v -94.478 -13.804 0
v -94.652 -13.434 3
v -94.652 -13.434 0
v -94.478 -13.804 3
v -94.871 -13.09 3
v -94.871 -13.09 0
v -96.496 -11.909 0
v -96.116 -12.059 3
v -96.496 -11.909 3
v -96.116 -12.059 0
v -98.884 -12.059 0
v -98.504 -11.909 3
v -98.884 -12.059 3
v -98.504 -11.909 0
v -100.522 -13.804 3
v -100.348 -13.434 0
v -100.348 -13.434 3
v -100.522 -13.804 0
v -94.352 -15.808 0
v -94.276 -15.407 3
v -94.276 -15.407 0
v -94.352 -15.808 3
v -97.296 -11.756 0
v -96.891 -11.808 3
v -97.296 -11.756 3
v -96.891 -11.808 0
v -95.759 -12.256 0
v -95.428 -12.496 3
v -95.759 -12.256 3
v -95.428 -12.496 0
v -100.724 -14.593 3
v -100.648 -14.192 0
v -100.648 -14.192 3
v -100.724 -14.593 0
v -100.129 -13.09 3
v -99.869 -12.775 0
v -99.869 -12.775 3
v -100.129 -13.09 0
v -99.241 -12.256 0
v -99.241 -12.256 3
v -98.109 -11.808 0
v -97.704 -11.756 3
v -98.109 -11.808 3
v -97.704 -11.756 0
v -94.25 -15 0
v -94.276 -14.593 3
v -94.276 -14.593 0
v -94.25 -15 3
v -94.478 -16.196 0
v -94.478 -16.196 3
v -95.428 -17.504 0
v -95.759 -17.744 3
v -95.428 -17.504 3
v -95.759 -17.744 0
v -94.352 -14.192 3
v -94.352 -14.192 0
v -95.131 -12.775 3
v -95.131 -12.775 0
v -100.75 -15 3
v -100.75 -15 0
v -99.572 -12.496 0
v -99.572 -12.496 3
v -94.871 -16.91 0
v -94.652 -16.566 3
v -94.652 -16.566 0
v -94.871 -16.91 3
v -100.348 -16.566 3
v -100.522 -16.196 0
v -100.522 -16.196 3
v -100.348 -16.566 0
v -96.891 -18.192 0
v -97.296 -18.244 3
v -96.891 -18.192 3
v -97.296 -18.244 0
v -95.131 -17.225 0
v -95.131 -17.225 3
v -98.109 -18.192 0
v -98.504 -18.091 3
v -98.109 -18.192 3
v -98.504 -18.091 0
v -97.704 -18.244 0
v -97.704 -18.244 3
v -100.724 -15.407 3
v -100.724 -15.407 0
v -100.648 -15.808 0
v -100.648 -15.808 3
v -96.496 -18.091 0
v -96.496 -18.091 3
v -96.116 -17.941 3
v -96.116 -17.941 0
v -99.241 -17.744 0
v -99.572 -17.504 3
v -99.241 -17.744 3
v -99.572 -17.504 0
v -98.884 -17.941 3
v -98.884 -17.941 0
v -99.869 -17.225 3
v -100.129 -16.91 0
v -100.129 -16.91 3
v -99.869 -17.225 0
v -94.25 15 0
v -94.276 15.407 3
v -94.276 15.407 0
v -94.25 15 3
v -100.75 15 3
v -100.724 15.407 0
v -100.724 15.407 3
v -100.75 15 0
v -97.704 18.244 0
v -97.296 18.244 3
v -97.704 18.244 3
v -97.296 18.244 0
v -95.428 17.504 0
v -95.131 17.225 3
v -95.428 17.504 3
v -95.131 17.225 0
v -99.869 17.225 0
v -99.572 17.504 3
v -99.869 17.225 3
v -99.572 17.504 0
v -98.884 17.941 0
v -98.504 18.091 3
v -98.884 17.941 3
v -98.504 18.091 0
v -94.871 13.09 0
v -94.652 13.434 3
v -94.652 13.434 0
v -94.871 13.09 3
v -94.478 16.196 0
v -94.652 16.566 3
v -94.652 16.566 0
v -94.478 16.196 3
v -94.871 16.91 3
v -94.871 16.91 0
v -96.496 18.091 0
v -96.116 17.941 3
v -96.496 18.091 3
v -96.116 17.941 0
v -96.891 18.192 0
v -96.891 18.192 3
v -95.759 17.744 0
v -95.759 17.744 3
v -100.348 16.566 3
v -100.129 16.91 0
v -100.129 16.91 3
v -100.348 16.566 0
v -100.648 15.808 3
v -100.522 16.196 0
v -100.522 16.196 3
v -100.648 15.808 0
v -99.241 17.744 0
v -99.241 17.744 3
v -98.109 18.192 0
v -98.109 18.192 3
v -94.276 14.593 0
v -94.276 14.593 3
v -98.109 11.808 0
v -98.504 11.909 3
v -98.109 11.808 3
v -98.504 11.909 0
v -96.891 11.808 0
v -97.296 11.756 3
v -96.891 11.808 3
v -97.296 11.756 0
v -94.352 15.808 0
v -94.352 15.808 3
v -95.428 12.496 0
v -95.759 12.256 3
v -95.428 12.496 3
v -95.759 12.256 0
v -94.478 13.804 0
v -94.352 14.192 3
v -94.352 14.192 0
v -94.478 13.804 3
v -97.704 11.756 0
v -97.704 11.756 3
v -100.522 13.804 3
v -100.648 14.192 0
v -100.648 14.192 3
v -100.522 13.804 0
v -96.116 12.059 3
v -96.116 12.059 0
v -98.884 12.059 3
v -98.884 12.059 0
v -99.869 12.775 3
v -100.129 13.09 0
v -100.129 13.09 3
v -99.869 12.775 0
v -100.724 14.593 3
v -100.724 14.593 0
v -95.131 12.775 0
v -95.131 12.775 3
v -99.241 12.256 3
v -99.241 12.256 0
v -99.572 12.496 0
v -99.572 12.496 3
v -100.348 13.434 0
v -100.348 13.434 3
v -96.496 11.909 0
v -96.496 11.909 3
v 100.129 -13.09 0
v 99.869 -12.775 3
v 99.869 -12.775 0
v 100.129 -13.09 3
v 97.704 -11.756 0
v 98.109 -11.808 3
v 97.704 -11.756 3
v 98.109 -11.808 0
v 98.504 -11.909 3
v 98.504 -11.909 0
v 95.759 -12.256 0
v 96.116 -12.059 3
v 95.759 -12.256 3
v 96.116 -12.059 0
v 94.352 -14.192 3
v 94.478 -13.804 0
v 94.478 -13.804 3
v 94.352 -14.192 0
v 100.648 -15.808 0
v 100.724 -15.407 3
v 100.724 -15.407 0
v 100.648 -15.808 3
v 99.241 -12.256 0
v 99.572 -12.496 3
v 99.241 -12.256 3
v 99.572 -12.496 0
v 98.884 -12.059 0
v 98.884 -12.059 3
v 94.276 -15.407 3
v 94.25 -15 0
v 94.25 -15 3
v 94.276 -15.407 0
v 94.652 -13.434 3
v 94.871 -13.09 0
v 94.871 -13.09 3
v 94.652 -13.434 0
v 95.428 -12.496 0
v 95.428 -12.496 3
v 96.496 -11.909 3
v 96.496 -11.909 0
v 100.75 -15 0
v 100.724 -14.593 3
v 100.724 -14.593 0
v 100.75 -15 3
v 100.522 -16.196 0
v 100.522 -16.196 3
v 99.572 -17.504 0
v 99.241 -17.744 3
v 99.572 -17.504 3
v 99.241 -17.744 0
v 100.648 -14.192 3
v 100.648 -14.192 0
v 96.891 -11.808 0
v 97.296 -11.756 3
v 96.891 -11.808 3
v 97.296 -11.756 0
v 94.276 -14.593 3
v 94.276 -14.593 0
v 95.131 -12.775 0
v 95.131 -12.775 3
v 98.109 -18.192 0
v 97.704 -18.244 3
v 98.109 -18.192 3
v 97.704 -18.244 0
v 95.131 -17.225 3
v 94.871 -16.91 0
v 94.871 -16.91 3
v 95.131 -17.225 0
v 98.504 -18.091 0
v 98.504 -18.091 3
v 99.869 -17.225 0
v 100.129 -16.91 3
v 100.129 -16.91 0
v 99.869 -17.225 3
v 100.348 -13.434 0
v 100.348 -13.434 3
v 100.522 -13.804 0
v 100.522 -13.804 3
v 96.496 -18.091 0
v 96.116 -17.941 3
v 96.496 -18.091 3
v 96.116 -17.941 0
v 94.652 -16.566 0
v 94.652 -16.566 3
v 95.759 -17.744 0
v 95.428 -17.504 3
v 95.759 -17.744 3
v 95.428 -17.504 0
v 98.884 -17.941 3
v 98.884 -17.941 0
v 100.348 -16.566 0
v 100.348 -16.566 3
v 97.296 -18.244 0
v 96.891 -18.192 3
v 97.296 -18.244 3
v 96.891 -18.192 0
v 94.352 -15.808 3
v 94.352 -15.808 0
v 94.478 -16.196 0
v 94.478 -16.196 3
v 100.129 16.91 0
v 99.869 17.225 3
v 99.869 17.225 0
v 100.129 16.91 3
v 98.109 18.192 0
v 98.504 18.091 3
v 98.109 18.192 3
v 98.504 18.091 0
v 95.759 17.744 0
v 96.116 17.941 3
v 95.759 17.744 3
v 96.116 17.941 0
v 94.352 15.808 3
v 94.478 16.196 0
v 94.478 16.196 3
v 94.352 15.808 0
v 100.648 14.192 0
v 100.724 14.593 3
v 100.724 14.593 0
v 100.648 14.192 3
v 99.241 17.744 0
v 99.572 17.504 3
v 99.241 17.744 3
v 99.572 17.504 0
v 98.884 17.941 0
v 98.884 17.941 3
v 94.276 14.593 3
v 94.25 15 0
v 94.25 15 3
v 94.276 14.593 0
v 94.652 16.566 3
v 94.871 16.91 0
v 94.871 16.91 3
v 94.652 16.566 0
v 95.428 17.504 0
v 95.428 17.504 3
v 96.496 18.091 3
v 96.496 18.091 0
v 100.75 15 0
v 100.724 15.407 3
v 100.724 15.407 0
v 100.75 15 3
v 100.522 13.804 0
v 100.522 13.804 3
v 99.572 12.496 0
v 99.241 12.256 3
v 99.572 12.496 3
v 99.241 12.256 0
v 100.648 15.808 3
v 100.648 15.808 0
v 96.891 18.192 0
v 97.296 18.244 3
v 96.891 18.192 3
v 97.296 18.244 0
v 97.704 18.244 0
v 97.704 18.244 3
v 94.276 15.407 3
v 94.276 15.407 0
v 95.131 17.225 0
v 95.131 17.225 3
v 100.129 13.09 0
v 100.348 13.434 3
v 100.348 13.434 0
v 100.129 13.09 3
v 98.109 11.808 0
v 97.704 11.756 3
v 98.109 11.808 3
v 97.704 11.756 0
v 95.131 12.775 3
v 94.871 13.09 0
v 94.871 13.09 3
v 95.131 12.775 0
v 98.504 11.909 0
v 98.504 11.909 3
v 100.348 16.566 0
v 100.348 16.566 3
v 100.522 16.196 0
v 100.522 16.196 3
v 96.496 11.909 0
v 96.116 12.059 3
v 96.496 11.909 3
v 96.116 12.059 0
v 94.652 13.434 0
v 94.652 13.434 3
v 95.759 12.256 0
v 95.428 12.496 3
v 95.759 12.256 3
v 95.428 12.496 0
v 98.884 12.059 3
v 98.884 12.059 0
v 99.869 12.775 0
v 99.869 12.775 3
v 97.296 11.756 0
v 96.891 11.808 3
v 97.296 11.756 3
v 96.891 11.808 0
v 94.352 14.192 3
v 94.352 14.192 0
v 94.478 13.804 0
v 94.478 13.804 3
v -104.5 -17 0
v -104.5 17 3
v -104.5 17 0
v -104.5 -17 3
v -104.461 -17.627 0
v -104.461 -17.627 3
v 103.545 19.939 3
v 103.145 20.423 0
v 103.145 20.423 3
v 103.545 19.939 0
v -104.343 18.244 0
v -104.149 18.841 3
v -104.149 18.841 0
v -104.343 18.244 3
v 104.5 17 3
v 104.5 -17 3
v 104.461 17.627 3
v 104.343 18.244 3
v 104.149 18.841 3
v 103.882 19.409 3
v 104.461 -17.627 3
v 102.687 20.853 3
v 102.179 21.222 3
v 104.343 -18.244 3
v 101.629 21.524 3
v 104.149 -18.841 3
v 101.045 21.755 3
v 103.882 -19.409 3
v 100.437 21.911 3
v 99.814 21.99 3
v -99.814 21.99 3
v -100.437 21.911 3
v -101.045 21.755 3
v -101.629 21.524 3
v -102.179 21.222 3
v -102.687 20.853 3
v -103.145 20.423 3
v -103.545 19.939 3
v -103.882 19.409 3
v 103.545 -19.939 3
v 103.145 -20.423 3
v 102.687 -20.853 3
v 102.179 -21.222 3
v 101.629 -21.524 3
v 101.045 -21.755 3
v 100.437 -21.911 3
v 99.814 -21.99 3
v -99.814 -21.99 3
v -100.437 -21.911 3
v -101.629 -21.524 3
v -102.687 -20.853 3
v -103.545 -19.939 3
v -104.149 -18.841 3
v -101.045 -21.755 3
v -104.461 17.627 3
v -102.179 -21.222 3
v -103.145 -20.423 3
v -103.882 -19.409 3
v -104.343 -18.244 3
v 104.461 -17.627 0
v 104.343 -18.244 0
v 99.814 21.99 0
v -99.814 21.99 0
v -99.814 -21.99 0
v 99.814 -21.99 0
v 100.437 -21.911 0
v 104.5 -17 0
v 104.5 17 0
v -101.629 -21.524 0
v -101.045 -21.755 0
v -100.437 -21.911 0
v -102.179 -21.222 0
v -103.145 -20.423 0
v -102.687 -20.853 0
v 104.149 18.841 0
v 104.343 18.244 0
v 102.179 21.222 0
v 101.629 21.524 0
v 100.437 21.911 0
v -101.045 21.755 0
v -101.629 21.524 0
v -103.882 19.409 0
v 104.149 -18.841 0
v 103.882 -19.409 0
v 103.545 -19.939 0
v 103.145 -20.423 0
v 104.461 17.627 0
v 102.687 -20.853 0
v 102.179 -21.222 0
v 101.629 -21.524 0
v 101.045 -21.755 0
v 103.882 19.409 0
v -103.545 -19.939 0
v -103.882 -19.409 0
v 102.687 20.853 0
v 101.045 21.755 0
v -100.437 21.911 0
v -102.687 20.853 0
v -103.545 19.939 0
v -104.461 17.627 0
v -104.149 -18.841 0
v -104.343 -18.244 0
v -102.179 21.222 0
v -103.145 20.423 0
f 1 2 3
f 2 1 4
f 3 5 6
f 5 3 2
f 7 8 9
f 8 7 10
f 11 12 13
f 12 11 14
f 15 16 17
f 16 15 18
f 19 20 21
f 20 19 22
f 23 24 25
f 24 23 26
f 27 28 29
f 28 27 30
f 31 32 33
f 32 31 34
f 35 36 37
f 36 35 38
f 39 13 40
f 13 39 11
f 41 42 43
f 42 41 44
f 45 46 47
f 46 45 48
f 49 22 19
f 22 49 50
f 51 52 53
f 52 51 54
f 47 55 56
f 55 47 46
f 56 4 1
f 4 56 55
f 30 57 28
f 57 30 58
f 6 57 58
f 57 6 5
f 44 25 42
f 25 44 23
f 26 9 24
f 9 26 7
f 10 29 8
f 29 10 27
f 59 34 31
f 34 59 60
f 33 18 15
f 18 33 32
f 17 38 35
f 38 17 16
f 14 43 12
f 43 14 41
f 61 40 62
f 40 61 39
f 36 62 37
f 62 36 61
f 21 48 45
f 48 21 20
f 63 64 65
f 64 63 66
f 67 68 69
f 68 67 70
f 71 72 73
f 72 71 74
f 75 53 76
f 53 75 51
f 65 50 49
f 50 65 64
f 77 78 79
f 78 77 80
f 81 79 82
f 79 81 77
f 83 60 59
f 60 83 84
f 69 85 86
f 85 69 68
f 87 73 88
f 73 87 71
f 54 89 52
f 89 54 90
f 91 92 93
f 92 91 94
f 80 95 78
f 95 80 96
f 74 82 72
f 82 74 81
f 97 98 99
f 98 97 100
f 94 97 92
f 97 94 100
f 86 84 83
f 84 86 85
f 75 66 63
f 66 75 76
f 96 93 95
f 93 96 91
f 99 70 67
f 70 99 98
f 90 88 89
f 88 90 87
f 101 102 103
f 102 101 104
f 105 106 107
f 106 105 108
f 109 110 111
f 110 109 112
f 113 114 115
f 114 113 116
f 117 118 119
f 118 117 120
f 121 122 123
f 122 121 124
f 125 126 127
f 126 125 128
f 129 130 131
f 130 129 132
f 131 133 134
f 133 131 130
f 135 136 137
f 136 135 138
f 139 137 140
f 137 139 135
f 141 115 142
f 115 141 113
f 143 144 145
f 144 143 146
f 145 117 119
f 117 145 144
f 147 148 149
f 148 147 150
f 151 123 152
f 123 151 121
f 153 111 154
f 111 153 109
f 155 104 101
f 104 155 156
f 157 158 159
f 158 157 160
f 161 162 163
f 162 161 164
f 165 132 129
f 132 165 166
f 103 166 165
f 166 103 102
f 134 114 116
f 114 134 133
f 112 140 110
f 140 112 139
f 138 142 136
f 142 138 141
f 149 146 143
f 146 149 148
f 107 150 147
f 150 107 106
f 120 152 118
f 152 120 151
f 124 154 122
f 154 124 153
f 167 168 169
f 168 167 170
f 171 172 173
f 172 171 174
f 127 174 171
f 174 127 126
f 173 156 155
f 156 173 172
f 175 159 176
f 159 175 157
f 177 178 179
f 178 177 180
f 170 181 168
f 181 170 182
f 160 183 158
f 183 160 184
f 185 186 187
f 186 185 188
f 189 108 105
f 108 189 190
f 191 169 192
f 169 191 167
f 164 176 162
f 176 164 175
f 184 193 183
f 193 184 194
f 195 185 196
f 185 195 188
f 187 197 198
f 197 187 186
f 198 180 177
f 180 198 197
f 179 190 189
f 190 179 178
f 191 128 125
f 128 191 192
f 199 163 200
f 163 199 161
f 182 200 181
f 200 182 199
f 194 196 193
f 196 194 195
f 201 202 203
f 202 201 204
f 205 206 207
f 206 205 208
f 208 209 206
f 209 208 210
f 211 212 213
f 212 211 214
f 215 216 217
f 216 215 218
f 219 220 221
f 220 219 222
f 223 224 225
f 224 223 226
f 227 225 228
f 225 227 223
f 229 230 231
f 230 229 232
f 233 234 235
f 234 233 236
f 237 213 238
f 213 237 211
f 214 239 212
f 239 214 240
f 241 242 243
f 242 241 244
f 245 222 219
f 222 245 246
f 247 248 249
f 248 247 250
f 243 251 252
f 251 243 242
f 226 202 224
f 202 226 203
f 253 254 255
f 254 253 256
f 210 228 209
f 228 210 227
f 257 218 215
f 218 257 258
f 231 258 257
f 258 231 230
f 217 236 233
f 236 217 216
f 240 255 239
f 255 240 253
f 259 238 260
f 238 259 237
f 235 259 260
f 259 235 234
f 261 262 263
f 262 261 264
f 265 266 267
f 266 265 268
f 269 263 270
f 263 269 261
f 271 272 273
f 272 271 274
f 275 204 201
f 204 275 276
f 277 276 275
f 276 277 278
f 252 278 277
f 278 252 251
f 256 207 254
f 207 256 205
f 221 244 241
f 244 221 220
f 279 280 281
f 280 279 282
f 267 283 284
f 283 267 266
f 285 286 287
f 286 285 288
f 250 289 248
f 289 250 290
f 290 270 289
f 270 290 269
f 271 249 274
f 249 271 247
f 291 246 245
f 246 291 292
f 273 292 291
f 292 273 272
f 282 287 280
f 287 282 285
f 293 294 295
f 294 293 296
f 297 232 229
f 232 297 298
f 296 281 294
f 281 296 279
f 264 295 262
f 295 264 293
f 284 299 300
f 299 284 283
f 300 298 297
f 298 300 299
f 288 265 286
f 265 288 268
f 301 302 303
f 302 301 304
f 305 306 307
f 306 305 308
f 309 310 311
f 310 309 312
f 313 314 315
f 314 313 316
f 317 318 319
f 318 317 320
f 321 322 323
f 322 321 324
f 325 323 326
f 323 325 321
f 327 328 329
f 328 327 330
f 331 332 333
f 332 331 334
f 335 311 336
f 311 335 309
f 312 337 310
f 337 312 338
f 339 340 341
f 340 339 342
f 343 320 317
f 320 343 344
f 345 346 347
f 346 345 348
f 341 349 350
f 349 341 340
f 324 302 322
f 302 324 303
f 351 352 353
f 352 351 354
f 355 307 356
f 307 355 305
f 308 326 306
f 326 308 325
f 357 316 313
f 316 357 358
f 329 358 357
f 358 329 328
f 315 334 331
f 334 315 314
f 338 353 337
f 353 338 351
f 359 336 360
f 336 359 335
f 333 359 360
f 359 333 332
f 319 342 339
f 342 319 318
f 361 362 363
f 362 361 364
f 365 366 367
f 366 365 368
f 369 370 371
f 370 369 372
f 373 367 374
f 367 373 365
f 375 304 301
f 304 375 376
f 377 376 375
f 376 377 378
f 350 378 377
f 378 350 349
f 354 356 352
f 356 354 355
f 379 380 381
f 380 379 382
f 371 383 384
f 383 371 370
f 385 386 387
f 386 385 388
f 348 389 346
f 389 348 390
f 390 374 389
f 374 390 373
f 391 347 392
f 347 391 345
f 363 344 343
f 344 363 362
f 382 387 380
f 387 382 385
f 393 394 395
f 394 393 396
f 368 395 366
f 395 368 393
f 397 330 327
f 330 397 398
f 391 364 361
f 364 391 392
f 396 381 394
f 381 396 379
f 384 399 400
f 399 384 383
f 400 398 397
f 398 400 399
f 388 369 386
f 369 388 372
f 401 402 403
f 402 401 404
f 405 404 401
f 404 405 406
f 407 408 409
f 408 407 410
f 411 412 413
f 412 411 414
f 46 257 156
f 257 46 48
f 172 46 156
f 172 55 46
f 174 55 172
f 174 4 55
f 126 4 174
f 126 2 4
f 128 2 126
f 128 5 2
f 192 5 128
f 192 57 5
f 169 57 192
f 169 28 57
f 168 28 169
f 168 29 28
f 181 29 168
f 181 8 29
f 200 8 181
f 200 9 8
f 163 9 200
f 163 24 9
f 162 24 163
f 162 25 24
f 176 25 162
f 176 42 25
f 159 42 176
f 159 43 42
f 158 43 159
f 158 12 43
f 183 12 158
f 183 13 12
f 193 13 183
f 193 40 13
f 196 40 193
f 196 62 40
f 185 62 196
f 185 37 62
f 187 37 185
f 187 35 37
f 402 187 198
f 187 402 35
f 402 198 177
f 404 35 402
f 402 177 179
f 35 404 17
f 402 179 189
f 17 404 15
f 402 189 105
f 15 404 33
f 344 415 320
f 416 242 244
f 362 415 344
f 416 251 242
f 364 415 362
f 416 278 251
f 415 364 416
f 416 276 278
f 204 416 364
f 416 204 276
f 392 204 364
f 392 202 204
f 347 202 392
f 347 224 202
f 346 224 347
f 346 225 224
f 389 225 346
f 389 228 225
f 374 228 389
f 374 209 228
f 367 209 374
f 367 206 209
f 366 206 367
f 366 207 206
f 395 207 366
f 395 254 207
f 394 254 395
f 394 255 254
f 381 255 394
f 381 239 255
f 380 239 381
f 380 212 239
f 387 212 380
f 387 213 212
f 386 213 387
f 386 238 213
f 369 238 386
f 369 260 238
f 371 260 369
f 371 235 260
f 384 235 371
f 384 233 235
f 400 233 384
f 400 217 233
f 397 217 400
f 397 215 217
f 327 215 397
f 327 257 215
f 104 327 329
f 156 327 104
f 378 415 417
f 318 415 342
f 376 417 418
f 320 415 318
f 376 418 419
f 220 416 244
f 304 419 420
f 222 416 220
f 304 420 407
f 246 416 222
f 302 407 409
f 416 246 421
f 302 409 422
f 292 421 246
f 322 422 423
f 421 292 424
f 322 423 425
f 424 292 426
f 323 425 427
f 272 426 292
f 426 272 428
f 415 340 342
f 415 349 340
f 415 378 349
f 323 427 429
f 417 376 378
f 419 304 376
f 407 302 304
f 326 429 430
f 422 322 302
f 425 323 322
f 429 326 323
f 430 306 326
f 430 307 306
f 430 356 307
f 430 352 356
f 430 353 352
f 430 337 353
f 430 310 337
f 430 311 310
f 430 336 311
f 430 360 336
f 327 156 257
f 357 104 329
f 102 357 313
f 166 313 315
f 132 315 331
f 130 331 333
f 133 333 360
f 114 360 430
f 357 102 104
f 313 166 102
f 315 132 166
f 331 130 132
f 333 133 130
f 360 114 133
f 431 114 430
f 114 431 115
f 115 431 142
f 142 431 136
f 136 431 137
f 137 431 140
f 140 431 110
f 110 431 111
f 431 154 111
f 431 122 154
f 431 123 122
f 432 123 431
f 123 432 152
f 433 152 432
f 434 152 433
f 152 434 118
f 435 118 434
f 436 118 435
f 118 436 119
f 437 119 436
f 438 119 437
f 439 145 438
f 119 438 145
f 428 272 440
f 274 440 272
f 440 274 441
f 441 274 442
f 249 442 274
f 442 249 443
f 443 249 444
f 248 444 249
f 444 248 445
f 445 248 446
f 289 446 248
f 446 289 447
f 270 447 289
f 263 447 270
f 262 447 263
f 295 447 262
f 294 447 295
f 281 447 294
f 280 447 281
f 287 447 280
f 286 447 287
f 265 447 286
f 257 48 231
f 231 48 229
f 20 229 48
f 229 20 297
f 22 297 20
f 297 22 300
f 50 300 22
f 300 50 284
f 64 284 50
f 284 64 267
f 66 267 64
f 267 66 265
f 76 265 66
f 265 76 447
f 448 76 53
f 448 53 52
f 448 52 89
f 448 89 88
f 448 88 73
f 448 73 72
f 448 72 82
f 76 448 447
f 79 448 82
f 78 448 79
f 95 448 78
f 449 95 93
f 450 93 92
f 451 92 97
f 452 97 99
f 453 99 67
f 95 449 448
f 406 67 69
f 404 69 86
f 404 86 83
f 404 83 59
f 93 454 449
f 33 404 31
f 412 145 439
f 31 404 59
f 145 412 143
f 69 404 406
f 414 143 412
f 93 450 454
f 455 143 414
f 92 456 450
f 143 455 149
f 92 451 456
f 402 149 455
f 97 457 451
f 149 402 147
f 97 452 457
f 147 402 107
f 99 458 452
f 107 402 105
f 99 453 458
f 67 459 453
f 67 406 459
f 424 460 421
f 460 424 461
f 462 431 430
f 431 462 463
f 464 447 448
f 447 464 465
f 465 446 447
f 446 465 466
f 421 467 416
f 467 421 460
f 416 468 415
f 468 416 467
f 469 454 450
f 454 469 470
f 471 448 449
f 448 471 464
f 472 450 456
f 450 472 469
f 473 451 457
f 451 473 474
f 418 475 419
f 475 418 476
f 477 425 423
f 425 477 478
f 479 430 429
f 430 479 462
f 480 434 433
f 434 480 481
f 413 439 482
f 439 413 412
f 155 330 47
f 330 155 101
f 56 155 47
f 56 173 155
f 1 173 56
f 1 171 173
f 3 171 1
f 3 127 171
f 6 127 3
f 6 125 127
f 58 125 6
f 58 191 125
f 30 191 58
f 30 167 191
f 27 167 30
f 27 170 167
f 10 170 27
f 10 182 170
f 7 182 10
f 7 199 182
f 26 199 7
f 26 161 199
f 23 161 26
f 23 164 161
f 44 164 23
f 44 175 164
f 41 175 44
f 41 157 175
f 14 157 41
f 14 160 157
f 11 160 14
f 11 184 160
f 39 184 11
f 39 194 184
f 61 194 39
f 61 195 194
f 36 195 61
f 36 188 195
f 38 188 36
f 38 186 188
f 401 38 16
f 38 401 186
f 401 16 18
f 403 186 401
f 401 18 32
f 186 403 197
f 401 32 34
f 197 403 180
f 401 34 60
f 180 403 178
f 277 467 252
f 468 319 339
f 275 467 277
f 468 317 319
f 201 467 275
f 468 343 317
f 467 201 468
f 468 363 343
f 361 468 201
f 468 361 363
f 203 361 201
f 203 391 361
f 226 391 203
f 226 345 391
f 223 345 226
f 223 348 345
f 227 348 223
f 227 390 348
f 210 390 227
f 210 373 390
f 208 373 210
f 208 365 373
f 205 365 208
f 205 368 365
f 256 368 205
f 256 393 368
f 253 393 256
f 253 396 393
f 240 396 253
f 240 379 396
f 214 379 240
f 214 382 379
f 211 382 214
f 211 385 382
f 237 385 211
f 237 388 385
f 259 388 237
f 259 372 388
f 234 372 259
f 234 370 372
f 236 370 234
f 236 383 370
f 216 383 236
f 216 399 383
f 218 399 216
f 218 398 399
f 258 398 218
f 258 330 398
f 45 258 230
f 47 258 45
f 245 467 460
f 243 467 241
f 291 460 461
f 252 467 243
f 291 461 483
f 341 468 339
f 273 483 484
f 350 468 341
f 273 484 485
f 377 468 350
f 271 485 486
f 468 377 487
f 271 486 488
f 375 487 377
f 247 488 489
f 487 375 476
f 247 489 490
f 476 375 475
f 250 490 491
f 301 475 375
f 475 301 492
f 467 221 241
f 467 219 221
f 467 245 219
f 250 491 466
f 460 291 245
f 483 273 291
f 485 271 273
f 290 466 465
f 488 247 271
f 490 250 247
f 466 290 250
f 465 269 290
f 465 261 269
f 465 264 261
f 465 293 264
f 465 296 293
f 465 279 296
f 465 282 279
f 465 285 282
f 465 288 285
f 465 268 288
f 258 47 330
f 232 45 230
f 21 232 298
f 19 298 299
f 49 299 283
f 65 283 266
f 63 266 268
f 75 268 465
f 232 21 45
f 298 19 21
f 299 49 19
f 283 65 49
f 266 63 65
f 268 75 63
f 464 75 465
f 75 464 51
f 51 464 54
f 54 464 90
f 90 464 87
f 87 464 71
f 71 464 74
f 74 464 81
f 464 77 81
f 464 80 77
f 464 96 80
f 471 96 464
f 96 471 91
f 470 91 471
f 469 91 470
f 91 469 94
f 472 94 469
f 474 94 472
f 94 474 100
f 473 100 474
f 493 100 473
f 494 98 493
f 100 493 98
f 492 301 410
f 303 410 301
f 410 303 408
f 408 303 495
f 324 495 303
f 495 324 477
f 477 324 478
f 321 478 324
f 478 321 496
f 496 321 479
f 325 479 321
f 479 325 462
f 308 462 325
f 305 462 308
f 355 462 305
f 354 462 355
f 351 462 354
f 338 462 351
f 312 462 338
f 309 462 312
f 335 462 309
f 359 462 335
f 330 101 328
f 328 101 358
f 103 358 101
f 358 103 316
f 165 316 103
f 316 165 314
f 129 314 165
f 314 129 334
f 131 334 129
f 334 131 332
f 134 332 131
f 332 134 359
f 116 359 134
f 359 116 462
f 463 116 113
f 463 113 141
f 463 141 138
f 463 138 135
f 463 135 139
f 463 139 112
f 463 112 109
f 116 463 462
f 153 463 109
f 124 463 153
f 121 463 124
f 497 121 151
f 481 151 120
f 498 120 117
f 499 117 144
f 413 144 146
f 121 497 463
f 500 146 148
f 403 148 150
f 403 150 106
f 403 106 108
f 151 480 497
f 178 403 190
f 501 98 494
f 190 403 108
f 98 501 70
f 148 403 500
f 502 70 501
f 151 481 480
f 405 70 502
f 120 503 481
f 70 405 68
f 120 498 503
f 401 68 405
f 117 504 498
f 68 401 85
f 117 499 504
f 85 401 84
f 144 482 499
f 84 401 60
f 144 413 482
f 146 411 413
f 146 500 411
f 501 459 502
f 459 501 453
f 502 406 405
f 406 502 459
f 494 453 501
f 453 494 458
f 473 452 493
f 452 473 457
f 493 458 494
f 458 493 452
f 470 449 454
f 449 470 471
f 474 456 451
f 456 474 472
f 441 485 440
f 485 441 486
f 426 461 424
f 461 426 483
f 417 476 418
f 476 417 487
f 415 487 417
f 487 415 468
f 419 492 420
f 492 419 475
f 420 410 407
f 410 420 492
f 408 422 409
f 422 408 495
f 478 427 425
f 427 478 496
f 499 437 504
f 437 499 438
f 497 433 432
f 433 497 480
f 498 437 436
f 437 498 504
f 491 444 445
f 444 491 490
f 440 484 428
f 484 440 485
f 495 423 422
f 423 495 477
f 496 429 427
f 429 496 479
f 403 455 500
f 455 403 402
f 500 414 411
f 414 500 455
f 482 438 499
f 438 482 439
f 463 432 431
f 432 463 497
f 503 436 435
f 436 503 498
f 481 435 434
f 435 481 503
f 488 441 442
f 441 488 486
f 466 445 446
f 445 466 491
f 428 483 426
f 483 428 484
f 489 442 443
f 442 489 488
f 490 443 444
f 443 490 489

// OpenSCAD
$fn = 50;


difference() {
	union() {
		hull() {
			translate(v = [-99.5000000000, 17.0000000000, 0]) {
				cylinder(h = 3, r = 5);
			}
			translate(v = [99.5000000000, 17.0000000000, 0]) {
				cylinder(h = 3, r = 5);
			}
			translate(v = [-99.5000000000, -17.0000000000, 0]) {
				cylinder(h = 3, r = 5);
			}
			translate(v = [99.5000000000, -17.0000000000, 0]) {
				cylinder(h = 3, r = 5);
			}
		}
	}
	union() {
		translate(v = [-97.5000000000, -15.0000000000, -100.0000000000]) {
			cylinder(h = 200, r = 3.2500000000);
		}
		translate(v = [-97.5000000000, 15.0000000000, -100.0000000000]) {
			cylinder(h = 200, r = 3.2500000000);
		}
		translate(v = [97.5000000000, -15.0000000000, -100.0000000000]) {
			cylinder(h = 200, r = 3.2500000000);
		}
		translate(v = [97.5000000000, 15.0000000000, -100.0000000000]) {
			cylinder(h = 200, r = 3.2500000000);
		}
	}
}
